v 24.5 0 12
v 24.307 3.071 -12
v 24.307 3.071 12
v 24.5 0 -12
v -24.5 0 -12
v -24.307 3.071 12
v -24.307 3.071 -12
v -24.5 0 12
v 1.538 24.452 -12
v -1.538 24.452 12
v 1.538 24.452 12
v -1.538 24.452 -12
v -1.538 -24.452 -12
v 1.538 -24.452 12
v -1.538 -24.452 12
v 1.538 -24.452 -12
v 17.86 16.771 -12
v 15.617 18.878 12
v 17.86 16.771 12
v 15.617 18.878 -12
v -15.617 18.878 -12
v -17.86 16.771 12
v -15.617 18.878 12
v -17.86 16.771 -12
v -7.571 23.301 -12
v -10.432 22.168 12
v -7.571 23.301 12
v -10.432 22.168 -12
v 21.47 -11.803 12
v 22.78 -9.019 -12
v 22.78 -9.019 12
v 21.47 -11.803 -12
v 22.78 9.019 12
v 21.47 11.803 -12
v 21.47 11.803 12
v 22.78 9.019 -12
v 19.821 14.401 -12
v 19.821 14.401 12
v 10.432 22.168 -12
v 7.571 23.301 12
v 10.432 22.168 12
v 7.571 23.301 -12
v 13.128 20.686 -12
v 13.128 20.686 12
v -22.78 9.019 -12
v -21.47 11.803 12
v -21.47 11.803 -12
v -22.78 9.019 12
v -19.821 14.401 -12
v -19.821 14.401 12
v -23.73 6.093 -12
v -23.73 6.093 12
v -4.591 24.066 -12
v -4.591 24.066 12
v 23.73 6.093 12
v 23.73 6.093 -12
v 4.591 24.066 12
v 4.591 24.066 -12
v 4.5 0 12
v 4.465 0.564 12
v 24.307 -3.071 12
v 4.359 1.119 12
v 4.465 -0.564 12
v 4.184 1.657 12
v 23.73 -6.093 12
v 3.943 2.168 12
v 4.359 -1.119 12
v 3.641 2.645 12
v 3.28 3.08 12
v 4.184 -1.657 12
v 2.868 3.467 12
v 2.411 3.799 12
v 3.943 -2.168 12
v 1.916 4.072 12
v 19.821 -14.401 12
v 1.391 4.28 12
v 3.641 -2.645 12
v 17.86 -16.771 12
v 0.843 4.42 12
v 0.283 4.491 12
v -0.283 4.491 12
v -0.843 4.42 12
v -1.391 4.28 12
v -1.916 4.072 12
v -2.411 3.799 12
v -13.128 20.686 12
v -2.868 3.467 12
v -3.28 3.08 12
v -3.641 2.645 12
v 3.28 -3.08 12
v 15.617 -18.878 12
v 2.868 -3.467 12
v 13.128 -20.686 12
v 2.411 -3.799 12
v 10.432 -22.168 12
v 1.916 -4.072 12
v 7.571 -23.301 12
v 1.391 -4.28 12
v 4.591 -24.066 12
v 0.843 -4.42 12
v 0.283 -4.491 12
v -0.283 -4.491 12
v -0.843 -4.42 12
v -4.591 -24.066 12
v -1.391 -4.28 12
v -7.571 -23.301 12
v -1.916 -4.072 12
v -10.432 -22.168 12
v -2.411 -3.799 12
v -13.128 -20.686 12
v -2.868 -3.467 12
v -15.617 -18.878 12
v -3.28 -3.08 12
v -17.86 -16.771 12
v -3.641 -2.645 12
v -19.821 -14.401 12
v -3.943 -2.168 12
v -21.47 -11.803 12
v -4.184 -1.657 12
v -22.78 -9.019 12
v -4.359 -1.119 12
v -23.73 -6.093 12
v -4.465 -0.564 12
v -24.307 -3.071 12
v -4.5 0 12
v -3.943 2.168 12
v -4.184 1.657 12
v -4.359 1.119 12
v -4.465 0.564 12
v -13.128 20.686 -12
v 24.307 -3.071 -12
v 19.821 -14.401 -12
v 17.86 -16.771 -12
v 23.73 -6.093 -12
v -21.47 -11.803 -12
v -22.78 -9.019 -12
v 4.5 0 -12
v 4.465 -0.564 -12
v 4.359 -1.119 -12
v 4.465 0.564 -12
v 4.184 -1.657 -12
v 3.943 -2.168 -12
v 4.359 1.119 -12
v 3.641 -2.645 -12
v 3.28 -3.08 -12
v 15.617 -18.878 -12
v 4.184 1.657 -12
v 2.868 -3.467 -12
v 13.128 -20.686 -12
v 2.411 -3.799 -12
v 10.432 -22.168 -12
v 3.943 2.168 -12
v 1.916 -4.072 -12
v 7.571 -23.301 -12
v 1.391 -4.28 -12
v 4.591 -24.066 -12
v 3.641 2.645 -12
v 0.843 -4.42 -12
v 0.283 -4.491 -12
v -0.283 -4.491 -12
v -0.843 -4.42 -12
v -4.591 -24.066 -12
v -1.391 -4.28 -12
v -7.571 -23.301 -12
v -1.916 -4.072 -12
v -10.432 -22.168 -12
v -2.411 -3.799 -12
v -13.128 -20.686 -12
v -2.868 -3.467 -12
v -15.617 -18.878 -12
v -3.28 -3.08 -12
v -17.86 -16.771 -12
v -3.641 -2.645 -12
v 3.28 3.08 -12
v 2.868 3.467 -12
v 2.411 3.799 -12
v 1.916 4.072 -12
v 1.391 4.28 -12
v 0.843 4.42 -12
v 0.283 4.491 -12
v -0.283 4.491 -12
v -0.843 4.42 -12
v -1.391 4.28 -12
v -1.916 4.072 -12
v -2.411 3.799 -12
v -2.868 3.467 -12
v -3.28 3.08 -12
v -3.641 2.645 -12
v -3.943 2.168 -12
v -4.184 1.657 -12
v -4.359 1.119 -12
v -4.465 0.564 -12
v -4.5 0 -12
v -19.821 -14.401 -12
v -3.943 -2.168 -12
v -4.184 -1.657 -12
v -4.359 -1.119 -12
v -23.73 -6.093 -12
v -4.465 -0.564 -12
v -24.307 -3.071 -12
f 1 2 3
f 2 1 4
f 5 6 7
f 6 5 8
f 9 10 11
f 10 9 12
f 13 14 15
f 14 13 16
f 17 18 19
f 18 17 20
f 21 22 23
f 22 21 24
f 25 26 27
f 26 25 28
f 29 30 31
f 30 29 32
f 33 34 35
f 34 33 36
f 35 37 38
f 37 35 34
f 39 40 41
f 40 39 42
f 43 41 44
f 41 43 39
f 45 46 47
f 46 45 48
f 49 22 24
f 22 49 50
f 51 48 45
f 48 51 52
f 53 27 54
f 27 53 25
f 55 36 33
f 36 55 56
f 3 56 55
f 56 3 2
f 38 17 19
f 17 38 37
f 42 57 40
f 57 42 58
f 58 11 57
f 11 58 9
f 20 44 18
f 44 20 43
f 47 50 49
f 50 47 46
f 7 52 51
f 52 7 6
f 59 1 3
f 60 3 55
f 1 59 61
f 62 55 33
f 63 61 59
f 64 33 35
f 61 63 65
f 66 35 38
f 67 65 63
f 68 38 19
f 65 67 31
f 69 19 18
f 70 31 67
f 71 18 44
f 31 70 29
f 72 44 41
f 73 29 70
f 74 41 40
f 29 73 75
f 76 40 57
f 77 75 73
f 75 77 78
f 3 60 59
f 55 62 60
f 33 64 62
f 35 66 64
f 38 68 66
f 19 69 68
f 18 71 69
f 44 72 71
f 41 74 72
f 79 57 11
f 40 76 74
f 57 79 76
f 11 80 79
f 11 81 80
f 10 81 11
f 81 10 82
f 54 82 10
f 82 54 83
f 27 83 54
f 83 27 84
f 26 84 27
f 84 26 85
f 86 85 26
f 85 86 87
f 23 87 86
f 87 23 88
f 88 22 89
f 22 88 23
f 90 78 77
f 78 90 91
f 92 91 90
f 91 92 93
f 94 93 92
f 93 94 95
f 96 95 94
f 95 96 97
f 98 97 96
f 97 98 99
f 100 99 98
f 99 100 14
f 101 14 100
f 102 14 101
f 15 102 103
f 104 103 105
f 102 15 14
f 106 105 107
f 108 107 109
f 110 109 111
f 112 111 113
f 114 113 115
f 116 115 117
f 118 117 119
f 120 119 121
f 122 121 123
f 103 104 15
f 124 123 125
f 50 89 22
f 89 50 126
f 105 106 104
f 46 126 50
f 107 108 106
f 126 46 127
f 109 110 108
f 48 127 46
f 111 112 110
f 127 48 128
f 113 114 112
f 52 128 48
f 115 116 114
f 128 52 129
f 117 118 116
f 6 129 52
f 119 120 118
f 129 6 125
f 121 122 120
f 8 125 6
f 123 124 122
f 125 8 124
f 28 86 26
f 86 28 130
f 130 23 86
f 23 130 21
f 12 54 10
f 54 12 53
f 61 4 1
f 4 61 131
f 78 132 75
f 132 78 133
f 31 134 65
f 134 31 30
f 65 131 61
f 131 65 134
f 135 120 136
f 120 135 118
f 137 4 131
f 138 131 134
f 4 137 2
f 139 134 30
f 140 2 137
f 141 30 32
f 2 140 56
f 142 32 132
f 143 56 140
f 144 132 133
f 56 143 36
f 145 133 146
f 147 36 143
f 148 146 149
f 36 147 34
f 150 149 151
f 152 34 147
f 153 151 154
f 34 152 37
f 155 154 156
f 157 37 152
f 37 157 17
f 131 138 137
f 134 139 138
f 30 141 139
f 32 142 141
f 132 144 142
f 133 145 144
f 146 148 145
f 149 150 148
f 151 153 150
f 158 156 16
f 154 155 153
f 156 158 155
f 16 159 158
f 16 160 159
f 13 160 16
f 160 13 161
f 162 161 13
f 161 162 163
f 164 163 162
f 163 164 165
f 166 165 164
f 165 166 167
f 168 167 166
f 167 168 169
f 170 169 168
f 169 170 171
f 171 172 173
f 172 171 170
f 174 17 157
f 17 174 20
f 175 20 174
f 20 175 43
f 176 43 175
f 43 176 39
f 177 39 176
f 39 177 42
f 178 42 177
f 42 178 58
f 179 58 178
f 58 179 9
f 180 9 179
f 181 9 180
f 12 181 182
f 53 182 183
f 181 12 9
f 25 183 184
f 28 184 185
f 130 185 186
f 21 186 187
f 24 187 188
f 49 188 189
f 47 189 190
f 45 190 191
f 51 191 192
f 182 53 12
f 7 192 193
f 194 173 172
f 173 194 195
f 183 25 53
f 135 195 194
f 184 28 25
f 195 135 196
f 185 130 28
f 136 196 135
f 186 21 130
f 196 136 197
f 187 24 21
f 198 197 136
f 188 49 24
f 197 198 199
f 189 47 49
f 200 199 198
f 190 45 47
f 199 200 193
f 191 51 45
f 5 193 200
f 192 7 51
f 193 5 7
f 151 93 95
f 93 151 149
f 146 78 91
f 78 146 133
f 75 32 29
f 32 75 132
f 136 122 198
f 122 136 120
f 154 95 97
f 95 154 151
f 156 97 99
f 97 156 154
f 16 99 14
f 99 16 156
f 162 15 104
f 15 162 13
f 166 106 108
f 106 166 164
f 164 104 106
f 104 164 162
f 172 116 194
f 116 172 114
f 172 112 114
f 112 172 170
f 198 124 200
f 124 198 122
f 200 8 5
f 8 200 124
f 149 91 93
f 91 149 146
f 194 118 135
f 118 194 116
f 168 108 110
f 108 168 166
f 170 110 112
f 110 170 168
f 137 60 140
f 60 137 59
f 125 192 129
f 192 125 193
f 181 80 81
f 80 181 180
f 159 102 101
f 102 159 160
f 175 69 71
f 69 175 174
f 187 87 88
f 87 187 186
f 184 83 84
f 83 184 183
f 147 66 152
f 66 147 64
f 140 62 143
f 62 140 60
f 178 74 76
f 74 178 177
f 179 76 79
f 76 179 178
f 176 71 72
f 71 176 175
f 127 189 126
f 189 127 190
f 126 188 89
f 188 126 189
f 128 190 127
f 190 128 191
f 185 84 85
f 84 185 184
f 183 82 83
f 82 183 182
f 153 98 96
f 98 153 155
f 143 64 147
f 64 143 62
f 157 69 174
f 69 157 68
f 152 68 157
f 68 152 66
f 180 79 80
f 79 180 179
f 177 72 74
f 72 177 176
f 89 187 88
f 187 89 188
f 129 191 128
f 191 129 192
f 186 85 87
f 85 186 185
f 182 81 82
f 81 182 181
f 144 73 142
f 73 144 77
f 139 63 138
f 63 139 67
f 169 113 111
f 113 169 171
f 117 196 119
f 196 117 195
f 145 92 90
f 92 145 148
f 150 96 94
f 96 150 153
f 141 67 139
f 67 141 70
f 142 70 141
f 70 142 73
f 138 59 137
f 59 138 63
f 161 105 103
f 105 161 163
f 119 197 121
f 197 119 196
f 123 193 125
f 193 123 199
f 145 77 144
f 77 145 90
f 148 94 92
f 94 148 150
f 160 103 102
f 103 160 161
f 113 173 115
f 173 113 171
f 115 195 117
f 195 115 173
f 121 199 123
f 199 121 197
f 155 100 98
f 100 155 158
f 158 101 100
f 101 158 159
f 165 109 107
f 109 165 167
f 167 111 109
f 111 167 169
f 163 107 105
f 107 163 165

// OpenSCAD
$fn = 50;


difference() {
	union() {
		translate(v = [0, 0, -12.0000000000]) {
			cylinder(h = 24, r = 24.5000000000);
		}
	}
	union() {
		translate(v = [0, 0, -100.0000000000]) {
			cylinder(h = 200, r = 4.5000000000);
		}
	}
}
